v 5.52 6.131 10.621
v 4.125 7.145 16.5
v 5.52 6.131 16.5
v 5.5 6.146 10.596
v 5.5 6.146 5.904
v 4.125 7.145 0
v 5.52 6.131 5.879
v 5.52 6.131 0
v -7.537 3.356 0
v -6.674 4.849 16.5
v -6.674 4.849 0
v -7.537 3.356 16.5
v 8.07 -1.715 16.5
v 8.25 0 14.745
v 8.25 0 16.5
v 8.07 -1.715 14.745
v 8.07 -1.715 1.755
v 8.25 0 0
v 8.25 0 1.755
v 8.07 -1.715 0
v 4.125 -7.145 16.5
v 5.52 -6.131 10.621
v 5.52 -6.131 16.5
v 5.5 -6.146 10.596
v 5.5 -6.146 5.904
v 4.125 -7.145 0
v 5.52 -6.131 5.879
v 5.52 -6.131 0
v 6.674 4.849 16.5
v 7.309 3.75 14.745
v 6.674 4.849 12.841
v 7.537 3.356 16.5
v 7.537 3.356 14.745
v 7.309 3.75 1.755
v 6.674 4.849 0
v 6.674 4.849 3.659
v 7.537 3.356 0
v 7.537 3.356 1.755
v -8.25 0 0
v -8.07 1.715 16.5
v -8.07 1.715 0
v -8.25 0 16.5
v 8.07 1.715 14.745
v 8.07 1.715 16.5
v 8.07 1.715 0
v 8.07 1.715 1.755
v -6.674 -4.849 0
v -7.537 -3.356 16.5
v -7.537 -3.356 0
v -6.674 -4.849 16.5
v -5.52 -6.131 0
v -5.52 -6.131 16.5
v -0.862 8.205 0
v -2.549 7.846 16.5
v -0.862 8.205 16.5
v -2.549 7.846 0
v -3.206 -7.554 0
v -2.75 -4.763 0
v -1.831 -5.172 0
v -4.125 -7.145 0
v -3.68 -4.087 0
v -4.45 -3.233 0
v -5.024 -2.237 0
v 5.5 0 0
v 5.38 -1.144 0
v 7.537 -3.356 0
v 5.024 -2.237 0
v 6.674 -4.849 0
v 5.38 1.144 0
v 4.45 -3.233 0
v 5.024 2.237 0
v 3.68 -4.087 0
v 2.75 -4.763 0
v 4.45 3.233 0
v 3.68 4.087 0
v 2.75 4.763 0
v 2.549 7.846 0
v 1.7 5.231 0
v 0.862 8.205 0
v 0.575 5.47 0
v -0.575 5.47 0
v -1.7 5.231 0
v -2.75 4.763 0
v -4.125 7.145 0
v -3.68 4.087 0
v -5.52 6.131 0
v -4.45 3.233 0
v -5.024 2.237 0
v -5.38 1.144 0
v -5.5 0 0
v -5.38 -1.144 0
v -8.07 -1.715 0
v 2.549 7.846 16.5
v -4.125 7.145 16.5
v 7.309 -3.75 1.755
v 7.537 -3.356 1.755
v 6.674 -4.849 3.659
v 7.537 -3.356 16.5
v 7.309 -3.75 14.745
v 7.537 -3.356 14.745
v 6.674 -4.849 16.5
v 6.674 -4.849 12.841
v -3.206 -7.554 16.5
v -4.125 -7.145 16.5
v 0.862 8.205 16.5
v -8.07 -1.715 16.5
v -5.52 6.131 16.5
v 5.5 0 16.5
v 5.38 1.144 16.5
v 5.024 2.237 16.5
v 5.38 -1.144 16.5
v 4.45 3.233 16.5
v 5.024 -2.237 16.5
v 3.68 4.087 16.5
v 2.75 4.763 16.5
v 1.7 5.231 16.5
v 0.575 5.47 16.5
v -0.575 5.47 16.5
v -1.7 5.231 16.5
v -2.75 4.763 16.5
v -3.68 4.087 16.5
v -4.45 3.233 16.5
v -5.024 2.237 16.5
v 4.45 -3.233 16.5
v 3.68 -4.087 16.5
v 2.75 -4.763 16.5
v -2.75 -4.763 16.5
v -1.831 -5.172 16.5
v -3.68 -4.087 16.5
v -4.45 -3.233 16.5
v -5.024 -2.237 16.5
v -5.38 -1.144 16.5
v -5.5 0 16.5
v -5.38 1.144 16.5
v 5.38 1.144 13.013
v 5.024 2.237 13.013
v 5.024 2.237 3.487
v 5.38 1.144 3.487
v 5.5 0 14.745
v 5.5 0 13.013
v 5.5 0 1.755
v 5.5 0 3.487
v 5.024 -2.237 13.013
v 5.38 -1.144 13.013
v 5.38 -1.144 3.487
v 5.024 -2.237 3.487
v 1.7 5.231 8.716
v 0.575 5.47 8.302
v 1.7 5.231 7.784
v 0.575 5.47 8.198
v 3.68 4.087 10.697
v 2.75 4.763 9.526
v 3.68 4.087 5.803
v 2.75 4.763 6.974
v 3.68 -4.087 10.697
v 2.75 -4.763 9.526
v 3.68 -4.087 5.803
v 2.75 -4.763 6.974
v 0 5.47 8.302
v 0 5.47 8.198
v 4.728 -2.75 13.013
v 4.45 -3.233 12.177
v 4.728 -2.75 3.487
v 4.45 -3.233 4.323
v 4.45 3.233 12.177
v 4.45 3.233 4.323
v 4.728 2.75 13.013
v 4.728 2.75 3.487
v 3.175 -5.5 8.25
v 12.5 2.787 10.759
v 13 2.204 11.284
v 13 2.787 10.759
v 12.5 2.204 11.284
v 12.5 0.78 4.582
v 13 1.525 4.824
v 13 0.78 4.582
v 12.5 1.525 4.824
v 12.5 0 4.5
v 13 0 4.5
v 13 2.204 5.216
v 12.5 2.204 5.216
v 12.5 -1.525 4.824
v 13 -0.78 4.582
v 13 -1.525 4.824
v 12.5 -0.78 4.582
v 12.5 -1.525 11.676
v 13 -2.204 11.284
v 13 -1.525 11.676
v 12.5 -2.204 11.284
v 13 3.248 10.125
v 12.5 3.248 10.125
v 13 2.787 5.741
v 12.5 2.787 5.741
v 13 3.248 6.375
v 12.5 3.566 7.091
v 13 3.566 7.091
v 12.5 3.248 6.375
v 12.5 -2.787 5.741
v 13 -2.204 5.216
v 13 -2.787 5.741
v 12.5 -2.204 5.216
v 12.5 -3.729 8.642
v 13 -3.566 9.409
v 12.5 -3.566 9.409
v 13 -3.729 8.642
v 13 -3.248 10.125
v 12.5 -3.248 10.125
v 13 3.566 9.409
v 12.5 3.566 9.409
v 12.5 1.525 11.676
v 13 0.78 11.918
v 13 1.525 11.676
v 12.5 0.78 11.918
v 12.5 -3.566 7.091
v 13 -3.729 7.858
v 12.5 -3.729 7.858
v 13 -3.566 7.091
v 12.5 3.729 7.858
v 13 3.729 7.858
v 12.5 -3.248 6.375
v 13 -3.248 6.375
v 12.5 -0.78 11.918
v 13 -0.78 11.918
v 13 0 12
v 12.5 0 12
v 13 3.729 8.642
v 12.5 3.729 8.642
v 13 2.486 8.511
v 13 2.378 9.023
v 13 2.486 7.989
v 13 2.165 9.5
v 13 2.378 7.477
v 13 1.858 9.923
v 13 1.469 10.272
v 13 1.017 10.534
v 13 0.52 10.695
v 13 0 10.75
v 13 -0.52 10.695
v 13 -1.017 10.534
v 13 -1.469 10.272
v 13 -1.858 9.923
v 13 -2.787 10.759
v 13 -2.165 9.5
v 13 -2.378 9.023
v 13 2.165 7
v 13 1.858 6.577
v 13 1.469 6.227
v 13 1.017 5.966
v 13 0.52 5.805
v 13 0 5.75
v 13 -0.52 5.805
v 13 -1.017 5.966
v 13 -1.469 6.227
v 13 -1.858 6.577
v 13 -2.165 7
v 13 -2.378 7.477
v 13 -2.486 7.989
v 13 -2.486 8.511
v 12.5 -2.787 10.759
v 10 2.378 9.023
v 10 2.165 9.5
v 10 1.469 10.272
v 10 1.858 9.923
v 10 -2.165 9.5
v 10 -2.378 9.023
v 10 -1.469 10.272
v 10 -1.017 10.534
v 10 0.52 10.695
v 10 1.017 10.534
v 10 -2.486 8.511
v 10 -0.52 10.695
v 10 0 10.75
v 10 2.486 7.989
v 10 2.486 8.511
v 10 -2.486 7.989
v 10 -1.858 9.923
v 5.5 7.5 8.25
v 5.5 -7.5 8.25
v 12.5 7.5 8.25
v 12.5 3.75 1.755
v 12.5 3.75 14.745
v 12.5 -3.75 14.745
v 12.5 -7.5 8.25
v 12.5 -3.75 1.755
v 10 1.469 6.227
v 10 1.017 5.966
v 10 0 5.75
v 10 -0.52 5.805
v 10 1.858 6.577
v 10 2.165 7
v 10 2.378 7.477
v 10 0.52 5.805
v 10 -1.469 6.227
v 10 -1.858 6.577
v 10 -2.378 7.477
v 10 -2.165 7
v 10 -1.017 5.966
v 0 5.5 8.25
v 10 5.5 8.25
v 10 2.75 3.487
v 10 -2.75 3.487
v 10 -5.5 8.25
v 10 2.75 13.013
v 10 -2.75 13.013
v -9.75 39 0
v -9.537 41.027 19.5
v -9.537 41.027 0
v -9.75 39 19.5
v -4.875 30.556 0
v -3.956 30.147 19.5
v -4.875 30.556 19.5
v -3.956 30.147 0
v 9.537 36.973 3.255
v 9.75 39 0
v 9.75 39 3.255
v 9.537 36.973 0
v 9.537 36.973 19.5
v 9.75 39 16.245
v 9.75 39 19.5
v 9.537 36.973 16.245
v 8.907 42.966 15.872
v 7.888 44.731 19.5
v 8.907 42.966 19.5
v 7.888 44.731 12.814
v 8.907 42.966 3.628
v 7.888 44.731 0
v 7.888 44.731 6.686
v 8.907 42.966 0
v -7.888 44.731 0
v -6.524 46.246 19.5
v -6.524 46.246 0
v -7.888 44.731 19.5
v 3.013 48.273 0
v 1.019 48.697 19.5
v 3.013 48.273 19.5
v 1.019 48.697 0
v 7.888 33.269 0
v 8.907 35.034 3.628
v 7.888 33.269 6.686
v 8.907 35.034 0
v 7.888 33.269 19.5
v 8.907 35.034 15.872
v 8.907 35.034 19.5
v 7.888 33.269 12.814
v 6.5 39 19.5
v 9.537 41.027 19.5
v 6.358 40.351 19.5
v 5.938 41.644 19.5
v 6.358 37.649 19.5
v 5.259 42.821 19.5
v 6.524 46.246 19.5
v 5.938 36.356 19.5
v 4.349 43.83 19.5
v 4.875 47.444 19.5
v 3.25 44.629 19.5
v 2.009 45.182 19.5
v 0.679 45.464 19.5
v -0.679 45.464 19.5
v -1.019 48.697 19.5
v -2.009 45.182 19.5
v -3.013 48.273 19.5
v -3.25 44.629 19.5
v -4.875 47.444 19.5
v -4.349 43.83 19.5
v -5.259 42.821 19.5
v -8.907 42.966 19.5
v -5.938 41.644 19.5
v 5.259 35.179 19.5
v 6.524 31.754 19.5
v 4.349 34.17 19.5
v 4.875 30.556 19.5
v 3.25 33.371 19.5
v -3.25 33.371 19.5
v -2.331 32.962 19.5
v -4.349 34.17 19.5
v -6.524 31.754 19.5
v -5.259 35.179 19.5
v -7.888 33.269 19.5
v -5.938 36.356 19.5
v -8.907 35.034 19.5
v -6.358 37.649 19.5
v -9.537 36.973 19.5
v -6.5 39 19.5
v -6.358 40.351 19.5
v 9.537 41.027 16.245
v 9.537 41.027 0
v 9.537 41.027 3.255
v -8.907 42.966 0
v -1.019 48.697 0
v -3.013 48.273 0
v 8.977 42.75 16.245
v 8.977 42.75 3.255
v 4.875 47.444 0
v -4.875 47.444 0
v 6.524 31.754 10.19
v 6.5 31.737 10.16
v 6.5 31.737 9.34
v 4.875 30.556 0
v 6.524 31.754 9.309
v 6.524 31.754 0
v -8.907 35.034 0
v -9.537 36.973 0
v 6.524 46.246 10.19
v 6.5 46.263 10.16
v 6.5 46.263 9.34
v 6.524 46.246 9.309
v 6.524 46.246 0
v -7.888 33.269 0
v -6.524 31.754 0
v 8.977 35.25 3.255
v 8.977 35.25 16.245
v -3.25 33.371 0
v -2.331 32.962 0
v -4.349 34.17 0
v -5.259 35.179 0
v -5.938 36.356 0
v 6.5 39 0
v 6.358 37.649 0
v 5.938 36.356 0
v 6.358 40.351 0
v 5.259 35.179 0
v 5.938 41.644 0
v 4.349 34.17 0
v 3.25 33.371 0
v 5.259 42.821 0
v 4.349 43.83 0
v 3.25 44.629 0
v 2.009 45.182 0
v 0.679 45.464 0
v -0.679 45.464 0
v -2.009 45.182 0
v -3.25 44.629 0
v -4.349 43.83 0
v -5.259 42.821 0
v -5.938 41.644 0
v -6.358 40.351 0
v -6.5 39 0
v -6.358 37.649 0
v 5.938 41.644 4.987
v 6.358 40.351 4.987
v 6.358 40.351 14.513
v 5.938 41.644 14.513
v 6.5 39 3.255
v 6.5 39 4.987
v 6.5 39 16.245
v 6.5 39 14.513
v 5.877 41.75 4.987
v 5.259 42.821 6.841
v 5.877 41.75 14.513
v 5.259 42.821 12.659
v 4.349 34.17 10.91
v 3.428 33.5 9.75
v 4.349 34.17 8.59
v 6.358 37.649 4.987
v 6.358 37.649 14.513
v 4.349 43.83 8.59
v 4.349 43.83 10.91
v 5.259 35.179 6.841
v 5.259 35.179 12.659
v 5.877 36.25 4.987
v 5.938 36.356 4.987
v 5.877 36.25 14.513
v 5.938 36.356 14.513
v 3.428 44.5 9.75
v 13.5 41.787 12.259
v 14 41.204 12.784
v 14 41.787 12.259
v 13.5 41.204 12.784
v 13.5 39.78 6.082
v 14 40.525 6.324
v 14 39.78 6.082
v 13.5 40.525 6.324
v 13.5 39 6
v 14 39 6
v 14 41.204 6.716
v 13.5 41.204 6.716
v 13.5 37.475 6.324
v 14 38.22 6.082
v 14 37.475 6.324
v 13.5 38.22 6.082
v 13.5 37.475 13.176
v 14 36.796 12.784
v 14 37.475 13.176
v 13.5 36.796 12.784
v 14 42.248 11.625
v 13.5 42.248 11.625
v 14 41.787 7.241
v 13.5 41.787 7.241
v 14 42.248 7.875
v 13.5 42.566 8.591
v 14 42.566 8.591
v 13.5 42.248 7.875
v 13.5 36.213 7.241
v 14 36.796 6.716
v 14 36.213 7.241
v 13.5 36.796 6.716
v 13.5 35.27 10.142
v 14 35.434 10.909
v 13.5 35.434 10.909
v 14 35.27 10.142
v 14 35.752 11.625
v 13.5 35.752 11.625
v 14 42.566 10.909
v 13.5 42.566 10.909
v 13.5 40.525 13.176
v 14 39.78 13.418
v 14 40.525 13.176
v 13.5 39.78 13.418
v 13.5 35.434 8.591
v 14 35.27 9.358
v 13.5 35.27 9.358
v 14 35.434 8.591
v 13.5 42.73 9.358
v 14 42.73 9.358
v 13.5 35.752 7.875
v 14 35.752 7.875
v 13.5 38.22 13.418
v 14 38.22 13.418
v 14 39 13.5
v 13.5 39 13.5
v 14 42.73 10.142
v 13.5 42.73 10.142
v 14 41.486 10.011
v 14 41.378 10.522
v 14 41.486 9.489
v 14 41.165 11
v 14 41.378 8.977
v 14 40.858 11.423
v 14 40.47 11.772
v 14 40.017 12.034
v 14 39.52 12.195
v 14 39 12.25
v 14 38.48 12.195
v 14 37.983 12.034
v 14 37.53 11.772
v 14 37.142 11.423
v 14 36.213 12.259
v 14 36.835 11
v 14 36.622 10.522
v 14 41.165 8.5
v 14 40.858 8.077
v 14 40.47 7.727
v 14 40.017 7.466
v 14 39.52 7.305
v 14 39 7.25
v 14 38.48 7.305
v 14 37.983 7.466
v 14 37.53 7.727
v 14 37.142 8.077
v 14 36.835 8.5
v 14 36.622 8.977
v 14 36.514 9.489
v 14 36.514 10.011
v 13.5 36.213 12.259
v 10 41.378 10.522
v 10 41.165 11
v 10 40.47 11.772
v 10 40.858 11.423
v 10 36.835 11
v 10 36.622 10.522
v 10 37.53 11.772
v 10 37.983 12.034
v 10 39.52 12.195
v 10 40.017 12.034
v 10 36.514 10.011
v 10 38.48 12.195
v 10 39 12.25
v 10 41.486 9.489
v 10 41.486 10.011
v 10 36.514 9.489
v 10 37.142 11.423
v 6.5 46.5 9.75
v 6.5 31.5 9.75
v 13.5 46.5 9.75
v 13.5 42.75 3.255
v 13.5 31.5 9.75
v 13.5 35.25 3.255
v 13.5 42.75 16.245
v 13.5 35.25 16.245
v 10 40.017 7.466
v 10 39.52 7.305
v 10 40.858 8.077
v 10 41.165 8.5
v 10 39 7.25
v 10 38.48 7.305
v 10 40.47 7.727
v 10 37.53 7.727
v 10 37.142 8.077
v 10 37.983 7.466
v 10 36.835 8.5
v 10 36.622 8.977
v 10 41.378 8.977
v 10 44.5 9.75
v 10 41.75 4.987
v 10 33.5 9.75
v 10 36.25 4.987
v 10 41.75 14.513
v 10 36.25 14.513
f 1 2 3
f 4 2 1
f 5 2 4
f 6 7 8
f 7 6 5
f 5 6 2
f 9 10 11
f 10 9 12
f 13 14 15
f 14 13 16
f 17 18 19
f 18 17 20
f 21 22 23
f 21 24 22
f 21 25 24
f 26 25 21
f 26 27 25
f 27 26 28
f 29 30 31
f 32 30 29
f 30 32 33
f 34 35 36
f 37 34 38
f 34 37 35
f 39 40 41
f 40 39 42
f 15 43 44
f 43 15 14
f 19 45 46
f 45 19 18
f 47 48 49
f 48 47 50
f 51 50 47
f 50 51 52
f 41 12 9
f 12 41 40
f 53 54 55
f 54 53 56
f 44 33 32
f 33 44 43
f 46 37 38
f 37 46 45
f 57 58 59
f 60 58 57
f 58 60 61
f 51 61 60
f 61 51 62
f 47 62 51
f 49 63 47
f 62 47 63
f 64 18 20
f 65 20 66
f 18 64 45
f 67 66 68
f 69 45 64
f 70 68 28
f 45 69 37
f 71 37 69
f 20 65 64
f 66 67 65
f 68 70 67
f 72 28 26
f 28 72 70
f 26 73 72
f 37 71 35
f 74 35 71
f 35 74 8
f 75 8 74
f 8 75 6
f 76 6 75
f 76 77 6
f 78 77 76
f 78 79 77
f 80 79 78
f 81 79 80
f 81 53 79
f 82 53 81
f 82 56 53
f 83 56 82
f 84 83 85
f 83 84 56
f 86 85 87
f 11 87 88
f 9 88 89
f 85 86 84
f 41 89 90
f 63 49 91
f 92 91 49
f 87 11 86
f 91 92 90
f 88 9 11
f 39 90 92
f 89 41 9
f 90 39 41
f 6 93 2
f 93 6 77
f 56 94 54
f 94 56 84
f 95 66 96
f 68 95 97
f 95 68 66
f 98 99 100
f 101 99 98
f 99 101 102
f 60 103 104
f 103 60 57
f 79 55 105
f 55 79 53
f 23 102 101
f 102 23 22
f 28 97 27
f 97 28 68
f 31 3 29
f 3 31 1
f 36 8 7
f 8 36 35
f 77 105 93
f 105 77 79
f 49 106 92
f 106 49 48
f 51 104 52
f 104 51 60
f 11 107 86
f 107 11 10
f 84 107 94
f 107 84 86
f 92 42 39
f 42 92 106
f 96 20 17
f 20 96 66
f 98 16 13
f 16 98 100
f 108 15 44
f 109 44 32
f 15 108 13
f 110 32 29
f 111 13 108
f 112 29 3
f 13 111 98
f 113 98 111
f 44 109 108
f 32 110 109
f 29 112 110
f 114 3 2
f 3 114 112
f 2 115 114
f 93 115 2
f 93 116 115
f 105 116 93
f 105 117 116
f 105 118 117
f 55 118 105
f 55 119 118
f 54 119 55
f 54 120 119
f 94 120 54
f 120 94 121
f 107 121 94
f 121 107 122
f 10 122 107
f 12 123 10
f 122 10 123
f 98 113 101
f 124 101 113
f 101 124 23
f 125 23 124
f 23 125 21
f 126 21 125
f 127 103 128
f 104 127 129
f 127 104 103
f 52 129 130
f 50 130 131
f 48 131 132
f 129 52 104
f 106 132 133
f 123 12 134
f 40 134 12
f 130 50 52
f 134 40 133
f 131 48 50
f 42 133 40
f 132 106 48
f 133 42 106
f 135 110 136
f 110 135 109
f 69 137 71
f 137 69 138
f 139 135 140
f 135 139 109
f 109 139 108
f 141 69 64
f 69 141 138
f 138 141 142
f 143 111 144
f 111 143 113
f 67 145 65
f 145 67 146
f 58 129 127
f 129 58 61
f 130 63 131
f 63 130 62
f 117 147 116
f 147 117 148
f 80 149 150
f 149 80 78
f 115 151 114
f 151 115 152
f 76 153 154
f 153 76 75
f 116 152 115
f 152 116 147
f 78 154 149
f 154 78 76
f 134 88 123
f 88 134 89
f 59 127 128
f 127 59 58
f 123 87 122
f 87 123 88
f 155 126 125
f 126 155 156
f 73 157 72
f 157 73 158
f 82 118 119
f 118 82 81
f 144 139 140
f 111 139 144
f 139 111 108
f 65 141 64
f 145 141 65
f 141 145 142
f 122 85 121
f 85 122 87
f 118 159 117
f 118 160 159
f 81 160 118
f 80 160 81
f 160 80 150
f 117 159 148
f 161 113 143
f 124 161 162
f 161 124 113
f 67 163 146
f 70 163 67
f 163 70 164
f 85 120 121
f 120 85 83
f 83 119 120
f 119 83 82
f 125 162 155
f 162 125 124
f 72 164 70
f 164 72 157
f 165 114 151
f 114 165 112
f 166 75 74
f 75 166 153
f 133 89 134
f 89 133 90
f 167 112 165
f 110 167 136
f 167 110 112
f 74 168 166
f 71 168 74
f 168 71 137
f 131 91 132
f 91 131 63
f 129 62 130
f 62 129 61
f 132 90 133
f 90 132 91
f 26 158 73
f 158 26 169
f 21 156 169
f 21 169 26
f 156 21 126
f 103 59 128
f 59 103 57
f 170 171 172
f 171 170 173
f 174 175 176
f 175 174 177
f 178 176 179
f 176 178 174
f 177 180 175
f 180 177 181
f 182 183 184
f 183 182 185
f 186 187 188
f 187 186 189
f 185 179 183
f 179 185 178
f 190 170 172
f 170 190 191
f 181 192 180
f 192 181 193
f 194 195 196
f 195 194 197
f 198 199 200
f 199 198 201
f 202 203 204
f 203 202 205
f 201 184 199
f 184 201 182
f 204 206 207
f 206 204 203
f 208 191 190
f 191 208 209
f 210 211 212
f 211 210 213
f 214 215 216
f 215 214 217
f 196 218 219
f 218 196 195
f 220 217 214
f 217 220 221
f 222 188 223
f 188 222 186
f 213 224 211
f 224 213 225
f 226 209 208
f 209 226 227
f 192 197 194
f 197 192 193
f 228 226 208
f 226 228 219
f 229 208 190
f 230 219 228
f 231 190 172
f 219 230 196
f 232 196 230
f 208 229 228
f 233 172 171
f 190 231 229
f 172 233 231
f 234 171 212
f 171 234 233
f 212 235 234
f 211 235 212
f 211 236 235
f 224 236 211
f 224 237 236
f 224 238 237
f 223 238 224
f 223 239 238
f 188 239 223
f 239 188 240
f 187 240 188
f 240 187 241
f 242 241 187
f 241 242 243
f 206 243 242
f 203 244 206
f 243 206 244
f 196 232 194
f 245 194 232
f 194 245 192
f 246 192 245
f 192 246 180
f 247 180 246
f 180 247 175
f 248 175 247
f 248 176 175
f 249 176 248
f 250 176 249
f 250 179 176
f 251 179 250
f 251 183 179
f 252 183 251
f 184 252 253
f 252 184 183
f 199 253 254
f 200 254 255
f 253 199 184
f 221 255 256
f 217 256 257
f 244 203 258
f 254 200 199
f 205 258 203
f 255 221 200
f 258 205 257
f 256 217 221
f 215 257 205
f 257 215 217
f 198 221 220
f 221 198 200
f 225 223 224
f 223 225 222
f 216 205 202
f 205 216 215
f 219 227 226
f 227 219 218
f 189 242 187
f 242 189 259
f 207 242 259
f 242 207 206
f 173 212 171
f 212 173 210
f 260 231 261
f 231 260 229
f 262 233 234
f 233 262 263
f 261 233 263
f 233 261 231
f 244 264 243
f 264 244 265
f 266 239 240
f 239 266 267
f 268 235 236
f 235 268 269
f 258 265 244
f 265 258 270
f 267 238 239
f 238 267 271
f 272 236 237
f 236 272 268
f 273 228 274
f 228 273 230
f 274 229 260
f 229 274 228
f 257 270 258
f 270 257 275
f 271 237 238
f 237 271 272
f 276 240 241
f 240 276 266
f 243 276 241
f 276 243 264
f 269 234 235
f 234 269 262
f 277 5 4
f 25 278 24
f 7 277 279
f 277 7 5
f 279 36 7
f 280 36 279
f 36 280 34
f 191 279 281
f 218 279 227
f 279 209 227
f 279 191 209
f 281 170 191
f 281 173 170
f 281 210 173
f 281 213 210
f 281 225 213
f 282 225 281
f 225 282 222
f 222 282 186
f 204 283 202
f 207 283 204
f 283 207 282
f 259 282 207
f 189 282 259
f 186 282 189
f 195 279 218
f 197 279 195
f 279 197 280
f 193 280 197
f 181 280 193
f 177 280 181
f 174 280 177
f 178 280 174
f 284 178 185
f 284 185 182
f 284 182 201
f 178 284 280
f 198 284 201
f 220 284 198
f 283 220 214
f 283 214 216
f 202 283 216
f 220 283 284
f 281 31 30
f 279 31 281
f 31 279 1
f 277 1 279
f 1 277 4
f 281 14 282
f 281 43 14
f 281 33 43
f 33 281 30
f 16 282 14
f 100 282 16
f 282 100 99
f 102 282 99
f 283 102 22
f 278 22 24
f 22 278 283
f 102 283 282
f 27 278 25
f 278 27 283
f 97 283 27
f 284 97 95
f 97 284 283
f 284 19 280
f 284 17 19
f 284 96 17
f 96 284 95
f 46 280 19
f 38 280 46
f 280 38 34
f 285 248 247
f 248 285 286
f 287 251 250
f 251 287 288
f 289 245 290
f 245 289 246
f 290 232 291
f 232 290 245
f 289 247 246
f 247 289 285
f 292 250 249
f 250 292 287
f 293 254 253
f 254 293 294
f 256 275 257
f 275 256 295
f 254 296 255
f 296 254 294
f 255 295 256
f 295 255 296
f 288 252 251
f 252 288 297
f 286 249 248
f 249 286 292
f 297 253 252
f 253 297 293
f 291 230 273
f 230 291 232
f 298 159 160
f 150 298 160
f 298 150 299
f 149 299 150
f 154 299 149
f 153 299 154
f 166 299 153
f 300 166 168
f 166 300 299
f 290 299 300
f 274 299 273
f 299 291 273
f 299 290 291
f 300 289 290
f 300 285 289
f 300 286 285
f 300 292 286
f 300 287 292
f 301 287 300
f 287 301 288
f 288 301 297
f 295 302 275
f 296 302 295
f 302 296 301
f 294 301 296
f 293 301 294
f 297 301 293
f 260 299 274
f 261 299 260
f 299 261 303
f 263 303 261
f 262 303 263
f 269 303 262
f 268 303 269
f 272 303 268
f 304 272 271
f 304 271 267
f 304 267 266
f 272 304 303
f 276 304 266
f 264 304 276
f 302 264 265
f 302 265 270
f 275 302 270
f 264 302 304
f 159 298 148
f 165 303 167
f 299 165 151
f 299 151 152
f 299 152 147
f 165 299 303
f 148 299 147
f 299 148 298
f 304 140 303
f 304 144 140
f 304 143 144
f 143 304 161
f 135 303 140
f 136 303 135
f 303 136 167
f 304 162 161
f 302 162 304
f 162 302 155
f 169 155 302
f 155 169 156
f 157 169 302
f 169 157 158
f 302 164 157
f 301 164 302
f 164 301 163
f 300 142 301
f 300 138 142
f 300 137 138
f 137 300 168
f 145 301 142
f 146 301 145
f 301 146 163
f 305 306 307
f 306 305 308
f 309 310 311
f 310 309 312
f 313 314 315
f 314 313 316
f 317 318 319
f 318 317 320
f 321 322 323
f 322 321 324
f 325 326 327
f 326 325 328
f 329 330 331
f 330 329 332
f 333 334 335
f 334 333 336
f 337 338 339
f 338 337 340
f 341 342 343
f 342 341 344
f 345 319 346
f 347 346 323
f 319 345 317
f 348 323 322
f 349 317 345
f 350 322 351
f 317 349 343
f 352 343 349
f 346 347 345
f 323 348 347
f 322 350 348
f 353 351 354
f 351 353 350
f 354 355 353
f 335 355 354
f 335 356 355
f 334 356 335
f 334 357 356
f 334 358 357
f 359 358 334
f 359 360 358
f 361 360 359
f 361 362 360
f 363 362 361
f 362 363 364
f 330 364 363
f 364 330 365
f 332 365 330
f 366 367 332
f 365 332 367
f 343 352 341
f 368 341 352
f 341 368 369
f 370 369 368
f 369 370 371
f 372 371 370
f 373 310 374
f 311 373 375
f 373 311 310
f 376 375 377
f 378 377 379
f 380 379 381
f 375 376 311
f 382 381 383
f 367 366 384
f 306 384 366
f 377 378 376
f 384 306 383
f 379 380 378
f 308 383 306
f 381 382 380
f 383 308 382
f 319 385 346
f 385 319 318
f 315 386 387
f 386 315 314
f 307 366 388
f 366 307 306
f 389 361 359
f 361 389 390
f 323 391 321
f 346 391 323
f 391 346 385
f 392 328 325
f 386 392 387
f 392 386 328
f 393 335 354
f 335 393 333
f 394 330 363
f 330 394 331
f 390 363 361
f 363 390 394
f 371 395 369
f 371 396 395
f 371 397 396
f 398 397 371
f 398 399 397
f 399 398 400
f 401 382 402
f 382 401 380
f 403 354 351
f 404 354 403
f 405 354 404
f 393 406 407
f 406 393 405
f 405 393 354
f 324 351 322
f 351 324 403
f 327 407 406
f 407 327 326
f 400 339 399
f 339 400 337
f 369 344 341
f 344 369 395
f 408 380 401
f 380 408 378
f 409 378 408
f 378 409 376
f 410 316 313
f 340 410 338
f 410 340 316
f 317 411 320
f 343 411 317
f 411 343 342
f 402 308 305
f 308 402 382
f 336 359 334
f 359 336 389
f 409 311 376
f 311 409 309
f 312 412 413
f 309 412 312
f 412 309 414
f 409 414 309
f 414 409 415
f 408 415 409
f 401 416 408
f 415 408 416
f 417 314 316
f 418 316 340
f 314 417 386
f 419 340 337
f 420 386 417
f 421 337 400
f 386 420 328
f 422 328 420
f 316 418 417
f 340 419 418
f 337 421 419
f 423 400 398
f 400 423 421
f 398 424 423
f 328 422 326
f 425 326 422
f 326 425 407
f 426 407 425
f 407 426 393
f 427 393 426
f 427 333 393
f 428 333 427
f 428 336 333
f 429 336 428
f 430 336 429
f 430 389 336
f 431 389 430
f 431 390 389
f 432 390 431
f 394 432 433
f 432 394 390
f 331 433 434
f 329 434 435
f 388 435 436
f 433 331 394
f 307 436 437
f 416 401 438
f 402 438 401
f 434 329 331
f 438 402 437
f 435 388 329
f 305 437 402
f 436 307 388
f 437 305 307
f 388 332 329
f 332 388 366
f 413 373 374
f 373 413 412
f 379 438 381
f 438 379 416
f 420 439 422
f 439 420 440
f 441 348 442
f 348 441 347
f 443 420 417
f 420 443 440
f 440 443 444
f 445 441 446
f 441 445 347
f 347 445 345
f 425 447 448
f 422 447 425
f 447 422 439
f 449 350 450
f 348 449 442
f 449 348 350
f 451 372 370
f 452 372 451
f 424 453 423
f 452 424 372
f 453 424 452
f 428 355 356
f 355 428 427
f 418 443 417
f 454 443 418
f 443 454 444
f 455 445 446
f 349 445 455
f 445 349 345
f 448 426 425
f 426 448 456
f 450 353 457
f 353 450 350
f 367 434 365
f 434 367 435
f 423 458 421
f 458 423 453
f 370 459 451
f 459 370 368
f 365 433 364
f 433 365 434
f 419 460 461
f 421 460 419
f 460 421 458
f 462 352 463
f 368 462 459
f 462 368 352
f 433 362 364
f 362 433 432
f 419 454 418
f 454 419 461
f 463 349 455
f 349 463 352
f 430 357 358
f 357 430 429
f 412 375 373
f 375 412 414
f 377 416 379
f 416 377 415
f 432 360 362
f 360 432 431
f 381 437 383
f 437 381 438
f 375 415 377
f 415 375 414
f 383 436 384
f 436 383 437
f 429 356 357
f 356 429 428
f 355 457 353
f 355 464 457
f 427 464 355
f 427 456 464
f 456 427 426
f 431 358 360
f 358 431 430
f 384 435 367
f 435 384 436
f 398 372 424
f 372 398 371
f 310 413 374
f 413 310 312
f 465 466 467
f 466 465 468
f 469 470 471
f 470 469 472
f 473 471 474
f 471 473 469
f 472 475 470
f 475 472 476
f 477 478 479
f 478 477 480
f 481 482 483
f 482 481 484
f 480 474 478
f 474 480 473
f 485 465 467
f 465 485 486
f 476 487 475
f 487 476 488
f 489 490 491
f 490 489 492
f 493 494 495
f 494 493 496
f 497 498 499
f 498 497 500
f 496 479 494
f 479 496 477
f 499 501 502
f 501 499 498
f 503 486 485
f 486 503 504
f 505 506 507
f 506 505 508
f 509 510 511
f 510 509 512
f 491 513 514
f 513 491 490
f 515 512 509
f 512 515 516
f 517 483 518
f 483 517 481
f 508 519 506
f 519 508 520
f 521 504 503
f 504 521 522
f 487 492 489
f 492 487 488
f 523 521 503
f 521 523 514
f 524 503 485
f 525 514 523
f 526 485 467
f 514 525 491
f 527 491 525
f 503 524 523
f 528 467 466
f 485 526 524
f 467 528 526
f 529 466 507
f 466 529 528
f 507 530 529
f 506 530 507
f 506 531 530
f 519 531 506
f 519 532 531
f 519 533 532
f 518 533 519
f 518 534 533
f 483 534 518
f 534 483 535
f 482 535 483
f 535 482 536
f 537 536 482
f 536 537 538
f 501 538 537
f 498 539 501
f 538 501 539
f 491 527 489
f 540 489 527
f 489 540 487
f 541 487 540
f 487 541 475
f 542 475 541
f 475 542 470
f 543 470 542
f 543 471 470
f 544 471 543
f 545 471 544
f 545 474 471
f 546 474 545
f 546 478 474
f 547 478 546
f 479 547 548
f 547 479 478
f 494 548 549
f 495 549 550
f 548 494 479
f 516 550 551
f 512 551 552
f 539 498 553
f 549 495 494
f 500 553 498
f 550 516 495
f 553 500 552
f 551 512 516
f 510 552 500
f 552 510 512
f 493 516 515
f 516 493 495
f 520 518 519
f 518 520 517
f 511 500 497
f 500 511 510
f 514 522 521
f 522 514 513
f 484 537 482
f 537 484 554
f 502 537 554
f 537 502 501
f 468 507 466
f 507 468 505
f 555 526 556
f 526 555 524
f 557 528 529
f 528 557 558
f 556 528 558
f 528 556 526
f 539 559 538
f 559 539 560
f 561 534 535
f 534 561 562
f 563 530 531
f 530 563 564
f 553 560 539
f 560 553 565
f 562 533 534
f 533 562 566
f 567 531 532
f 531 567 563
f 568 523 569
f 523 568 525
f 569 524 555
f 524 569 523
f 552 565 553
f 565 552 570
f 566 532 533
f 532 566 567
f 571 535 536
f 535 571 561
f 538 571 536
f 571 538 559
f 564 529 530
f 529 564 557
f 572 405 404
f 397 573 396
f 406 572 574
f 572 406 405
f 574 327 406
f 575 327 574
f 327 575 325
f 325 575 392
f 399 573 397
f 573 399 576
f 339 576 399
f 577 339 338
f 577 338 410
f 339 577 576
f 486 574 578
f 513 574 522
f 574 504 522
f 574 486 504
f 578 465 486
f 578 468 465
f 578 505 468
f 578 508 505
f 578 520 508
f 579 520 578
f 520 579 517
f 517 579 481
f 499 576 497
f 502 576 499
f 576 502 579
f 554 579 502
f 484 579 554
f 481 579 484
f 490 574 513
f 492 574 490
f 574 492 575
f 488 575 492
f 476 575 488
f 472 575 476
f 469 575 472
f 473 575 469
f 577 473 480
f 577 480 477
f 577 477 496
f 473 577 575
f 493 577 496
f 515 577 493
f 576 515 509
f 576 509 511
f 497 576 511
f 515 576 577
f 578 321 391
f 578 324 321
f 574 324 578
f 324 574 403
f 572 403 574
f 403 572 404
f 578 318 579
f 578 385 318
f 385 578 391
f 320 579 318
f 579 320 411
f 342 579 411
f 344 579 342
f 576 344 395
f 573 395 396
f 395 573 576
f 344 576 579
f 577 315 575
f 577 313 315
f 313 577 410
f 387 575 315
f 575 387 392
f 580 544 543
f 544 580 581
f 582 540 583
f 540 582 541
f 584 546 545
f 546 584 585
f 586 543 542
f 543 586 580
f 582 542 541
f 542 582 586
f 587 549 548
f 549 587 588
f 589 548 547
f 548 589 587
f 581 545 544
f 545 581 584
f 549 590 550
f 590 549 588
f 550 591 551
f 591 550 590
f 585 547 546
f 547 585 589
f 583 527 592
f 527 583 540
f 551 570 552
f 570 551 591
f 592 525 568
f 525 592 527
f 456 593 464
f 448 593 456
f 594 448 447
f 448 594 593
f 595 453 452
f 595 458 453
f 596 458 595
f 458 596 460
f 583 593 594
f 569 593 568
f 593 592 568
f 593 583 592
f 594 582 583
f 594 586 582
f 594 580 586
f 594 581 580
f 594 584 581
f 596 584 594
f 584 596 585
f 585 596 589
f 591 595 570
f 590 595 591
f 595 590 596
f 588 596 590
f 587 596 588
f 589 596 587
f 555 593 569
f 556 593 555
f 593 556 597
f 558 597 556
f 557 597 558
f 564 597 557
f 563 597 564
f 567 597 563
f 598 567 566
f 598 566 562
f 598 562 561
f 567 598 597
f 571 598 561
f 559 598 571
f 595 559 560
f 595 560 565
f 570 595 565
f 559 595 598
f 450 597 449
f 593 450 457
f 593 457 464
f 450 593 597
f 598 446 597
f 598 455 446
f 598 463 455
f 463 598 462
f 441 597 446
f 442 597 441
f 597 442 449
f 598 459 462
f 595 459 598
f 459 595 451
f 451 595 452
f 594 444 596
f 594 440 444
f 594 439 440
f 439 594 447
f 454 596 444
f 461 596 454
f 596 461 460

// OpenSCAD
wall            =  2;
screw_diam      =  5;
nut_height      =  5;
nut_diam        = 11;
nut_radius      =  0.5 * nut_diam;
rod_wide_diam   = 13;
rod_narrow_diam = 11;
$fn             = 30;

module hexagon(radius) {
    polygon(
        points = [
            [radius * sin(0*60), radius * cos(0*60)],
            [radius * sin(1*60), radius * cos(1*60)],
            [radius * sin(2*60), radius * cos(2*60)],
            [radius * sin(3*60), radius * cos(3*60)],
            [radius * sin(4*60), radius * cos(4*60)],
            [radius * sin(5*60), radius * cos(5*60)]
        ]
    );
}

module nut(radius, height) {
    linear_extrude(height) {
        hexagon(radius);
    };
}

module wedge( diameter ) {
    rotate([ 0, 0, -120])
    difference() {
        translate([0, 0, -1])
        cylinder( d = 1.5 * diameter+2, h = 1.5*diameter+2);
    
        rotate([0, 0, 60])
        translate([-diameter-1, 0, -2])
        cube([2*diameter+2, diameter+2, 1.5*diameter+4]);
    
        rotate([0, 0, 0])
        translate([-diameter-1, -diameter-1, -2])
        cube([2*diameter+2, diameter+2, 1.5*diameter+4]);
    }
}

module tube( diameter ) {
    difference() {
        cylinder(d = 1.5*diameter, h = 1.5*diameter);
        translate([0, 0, -1])
        cylinder( d = diameter, h = 1.5*diameter + 2);
    }
}

module rod_attachment( diameter ) {
    difference() {
        tube( diameter );
        wedge( diameter );
    }
    
    translate([0.5*diameter, 0, 0.75*diameter]) 
    rotate([0, 90, 0])
    color([1, 0, 1])
    tube( screw_diam );
    
    color([0, 1, 1])
    translate([0.5*diameter, 0, 0.75*diameter])
    rotate([0, 90, 0])
    nut( nut_radius+wall, nut_height+wall );
}


module rod() {
    rotate([0, 90, 0])
    cylinder(d = screw_diam, h = 10*screw_diam);
}

module narrow_rod_attachment() {
   difference() {
        rod_attachment( diameter = rod_narrow_diam );
        translate([ 0, 0, 0.75*rod_narrow_diam ])
        rod();
       
        color([1, 1, 1])
        translate([0, 0, 0.75*rod_narrow_diam ])
        rotate([0, 90, 0])
        nut(nut_radius, 2*nut_height);
    }
}

module wide_rod_attachment() {
    difference() {
        rod_attachment( diameter = rod_wide_diam );
        translate([ 0, 0, 0.75*rod_wide_diam ])
        rod();

        color([1, 1, 1])
        translate([0, 0, 0.75*rod_wide_diam ])
        rotate([0, 90, 0])
        nut(nut_radius, 2*nut_height);
    }
}

narrow_rod_attachment();

translate([0, 3*rod_wide_diam, 0]) wide_rod_attachment();
